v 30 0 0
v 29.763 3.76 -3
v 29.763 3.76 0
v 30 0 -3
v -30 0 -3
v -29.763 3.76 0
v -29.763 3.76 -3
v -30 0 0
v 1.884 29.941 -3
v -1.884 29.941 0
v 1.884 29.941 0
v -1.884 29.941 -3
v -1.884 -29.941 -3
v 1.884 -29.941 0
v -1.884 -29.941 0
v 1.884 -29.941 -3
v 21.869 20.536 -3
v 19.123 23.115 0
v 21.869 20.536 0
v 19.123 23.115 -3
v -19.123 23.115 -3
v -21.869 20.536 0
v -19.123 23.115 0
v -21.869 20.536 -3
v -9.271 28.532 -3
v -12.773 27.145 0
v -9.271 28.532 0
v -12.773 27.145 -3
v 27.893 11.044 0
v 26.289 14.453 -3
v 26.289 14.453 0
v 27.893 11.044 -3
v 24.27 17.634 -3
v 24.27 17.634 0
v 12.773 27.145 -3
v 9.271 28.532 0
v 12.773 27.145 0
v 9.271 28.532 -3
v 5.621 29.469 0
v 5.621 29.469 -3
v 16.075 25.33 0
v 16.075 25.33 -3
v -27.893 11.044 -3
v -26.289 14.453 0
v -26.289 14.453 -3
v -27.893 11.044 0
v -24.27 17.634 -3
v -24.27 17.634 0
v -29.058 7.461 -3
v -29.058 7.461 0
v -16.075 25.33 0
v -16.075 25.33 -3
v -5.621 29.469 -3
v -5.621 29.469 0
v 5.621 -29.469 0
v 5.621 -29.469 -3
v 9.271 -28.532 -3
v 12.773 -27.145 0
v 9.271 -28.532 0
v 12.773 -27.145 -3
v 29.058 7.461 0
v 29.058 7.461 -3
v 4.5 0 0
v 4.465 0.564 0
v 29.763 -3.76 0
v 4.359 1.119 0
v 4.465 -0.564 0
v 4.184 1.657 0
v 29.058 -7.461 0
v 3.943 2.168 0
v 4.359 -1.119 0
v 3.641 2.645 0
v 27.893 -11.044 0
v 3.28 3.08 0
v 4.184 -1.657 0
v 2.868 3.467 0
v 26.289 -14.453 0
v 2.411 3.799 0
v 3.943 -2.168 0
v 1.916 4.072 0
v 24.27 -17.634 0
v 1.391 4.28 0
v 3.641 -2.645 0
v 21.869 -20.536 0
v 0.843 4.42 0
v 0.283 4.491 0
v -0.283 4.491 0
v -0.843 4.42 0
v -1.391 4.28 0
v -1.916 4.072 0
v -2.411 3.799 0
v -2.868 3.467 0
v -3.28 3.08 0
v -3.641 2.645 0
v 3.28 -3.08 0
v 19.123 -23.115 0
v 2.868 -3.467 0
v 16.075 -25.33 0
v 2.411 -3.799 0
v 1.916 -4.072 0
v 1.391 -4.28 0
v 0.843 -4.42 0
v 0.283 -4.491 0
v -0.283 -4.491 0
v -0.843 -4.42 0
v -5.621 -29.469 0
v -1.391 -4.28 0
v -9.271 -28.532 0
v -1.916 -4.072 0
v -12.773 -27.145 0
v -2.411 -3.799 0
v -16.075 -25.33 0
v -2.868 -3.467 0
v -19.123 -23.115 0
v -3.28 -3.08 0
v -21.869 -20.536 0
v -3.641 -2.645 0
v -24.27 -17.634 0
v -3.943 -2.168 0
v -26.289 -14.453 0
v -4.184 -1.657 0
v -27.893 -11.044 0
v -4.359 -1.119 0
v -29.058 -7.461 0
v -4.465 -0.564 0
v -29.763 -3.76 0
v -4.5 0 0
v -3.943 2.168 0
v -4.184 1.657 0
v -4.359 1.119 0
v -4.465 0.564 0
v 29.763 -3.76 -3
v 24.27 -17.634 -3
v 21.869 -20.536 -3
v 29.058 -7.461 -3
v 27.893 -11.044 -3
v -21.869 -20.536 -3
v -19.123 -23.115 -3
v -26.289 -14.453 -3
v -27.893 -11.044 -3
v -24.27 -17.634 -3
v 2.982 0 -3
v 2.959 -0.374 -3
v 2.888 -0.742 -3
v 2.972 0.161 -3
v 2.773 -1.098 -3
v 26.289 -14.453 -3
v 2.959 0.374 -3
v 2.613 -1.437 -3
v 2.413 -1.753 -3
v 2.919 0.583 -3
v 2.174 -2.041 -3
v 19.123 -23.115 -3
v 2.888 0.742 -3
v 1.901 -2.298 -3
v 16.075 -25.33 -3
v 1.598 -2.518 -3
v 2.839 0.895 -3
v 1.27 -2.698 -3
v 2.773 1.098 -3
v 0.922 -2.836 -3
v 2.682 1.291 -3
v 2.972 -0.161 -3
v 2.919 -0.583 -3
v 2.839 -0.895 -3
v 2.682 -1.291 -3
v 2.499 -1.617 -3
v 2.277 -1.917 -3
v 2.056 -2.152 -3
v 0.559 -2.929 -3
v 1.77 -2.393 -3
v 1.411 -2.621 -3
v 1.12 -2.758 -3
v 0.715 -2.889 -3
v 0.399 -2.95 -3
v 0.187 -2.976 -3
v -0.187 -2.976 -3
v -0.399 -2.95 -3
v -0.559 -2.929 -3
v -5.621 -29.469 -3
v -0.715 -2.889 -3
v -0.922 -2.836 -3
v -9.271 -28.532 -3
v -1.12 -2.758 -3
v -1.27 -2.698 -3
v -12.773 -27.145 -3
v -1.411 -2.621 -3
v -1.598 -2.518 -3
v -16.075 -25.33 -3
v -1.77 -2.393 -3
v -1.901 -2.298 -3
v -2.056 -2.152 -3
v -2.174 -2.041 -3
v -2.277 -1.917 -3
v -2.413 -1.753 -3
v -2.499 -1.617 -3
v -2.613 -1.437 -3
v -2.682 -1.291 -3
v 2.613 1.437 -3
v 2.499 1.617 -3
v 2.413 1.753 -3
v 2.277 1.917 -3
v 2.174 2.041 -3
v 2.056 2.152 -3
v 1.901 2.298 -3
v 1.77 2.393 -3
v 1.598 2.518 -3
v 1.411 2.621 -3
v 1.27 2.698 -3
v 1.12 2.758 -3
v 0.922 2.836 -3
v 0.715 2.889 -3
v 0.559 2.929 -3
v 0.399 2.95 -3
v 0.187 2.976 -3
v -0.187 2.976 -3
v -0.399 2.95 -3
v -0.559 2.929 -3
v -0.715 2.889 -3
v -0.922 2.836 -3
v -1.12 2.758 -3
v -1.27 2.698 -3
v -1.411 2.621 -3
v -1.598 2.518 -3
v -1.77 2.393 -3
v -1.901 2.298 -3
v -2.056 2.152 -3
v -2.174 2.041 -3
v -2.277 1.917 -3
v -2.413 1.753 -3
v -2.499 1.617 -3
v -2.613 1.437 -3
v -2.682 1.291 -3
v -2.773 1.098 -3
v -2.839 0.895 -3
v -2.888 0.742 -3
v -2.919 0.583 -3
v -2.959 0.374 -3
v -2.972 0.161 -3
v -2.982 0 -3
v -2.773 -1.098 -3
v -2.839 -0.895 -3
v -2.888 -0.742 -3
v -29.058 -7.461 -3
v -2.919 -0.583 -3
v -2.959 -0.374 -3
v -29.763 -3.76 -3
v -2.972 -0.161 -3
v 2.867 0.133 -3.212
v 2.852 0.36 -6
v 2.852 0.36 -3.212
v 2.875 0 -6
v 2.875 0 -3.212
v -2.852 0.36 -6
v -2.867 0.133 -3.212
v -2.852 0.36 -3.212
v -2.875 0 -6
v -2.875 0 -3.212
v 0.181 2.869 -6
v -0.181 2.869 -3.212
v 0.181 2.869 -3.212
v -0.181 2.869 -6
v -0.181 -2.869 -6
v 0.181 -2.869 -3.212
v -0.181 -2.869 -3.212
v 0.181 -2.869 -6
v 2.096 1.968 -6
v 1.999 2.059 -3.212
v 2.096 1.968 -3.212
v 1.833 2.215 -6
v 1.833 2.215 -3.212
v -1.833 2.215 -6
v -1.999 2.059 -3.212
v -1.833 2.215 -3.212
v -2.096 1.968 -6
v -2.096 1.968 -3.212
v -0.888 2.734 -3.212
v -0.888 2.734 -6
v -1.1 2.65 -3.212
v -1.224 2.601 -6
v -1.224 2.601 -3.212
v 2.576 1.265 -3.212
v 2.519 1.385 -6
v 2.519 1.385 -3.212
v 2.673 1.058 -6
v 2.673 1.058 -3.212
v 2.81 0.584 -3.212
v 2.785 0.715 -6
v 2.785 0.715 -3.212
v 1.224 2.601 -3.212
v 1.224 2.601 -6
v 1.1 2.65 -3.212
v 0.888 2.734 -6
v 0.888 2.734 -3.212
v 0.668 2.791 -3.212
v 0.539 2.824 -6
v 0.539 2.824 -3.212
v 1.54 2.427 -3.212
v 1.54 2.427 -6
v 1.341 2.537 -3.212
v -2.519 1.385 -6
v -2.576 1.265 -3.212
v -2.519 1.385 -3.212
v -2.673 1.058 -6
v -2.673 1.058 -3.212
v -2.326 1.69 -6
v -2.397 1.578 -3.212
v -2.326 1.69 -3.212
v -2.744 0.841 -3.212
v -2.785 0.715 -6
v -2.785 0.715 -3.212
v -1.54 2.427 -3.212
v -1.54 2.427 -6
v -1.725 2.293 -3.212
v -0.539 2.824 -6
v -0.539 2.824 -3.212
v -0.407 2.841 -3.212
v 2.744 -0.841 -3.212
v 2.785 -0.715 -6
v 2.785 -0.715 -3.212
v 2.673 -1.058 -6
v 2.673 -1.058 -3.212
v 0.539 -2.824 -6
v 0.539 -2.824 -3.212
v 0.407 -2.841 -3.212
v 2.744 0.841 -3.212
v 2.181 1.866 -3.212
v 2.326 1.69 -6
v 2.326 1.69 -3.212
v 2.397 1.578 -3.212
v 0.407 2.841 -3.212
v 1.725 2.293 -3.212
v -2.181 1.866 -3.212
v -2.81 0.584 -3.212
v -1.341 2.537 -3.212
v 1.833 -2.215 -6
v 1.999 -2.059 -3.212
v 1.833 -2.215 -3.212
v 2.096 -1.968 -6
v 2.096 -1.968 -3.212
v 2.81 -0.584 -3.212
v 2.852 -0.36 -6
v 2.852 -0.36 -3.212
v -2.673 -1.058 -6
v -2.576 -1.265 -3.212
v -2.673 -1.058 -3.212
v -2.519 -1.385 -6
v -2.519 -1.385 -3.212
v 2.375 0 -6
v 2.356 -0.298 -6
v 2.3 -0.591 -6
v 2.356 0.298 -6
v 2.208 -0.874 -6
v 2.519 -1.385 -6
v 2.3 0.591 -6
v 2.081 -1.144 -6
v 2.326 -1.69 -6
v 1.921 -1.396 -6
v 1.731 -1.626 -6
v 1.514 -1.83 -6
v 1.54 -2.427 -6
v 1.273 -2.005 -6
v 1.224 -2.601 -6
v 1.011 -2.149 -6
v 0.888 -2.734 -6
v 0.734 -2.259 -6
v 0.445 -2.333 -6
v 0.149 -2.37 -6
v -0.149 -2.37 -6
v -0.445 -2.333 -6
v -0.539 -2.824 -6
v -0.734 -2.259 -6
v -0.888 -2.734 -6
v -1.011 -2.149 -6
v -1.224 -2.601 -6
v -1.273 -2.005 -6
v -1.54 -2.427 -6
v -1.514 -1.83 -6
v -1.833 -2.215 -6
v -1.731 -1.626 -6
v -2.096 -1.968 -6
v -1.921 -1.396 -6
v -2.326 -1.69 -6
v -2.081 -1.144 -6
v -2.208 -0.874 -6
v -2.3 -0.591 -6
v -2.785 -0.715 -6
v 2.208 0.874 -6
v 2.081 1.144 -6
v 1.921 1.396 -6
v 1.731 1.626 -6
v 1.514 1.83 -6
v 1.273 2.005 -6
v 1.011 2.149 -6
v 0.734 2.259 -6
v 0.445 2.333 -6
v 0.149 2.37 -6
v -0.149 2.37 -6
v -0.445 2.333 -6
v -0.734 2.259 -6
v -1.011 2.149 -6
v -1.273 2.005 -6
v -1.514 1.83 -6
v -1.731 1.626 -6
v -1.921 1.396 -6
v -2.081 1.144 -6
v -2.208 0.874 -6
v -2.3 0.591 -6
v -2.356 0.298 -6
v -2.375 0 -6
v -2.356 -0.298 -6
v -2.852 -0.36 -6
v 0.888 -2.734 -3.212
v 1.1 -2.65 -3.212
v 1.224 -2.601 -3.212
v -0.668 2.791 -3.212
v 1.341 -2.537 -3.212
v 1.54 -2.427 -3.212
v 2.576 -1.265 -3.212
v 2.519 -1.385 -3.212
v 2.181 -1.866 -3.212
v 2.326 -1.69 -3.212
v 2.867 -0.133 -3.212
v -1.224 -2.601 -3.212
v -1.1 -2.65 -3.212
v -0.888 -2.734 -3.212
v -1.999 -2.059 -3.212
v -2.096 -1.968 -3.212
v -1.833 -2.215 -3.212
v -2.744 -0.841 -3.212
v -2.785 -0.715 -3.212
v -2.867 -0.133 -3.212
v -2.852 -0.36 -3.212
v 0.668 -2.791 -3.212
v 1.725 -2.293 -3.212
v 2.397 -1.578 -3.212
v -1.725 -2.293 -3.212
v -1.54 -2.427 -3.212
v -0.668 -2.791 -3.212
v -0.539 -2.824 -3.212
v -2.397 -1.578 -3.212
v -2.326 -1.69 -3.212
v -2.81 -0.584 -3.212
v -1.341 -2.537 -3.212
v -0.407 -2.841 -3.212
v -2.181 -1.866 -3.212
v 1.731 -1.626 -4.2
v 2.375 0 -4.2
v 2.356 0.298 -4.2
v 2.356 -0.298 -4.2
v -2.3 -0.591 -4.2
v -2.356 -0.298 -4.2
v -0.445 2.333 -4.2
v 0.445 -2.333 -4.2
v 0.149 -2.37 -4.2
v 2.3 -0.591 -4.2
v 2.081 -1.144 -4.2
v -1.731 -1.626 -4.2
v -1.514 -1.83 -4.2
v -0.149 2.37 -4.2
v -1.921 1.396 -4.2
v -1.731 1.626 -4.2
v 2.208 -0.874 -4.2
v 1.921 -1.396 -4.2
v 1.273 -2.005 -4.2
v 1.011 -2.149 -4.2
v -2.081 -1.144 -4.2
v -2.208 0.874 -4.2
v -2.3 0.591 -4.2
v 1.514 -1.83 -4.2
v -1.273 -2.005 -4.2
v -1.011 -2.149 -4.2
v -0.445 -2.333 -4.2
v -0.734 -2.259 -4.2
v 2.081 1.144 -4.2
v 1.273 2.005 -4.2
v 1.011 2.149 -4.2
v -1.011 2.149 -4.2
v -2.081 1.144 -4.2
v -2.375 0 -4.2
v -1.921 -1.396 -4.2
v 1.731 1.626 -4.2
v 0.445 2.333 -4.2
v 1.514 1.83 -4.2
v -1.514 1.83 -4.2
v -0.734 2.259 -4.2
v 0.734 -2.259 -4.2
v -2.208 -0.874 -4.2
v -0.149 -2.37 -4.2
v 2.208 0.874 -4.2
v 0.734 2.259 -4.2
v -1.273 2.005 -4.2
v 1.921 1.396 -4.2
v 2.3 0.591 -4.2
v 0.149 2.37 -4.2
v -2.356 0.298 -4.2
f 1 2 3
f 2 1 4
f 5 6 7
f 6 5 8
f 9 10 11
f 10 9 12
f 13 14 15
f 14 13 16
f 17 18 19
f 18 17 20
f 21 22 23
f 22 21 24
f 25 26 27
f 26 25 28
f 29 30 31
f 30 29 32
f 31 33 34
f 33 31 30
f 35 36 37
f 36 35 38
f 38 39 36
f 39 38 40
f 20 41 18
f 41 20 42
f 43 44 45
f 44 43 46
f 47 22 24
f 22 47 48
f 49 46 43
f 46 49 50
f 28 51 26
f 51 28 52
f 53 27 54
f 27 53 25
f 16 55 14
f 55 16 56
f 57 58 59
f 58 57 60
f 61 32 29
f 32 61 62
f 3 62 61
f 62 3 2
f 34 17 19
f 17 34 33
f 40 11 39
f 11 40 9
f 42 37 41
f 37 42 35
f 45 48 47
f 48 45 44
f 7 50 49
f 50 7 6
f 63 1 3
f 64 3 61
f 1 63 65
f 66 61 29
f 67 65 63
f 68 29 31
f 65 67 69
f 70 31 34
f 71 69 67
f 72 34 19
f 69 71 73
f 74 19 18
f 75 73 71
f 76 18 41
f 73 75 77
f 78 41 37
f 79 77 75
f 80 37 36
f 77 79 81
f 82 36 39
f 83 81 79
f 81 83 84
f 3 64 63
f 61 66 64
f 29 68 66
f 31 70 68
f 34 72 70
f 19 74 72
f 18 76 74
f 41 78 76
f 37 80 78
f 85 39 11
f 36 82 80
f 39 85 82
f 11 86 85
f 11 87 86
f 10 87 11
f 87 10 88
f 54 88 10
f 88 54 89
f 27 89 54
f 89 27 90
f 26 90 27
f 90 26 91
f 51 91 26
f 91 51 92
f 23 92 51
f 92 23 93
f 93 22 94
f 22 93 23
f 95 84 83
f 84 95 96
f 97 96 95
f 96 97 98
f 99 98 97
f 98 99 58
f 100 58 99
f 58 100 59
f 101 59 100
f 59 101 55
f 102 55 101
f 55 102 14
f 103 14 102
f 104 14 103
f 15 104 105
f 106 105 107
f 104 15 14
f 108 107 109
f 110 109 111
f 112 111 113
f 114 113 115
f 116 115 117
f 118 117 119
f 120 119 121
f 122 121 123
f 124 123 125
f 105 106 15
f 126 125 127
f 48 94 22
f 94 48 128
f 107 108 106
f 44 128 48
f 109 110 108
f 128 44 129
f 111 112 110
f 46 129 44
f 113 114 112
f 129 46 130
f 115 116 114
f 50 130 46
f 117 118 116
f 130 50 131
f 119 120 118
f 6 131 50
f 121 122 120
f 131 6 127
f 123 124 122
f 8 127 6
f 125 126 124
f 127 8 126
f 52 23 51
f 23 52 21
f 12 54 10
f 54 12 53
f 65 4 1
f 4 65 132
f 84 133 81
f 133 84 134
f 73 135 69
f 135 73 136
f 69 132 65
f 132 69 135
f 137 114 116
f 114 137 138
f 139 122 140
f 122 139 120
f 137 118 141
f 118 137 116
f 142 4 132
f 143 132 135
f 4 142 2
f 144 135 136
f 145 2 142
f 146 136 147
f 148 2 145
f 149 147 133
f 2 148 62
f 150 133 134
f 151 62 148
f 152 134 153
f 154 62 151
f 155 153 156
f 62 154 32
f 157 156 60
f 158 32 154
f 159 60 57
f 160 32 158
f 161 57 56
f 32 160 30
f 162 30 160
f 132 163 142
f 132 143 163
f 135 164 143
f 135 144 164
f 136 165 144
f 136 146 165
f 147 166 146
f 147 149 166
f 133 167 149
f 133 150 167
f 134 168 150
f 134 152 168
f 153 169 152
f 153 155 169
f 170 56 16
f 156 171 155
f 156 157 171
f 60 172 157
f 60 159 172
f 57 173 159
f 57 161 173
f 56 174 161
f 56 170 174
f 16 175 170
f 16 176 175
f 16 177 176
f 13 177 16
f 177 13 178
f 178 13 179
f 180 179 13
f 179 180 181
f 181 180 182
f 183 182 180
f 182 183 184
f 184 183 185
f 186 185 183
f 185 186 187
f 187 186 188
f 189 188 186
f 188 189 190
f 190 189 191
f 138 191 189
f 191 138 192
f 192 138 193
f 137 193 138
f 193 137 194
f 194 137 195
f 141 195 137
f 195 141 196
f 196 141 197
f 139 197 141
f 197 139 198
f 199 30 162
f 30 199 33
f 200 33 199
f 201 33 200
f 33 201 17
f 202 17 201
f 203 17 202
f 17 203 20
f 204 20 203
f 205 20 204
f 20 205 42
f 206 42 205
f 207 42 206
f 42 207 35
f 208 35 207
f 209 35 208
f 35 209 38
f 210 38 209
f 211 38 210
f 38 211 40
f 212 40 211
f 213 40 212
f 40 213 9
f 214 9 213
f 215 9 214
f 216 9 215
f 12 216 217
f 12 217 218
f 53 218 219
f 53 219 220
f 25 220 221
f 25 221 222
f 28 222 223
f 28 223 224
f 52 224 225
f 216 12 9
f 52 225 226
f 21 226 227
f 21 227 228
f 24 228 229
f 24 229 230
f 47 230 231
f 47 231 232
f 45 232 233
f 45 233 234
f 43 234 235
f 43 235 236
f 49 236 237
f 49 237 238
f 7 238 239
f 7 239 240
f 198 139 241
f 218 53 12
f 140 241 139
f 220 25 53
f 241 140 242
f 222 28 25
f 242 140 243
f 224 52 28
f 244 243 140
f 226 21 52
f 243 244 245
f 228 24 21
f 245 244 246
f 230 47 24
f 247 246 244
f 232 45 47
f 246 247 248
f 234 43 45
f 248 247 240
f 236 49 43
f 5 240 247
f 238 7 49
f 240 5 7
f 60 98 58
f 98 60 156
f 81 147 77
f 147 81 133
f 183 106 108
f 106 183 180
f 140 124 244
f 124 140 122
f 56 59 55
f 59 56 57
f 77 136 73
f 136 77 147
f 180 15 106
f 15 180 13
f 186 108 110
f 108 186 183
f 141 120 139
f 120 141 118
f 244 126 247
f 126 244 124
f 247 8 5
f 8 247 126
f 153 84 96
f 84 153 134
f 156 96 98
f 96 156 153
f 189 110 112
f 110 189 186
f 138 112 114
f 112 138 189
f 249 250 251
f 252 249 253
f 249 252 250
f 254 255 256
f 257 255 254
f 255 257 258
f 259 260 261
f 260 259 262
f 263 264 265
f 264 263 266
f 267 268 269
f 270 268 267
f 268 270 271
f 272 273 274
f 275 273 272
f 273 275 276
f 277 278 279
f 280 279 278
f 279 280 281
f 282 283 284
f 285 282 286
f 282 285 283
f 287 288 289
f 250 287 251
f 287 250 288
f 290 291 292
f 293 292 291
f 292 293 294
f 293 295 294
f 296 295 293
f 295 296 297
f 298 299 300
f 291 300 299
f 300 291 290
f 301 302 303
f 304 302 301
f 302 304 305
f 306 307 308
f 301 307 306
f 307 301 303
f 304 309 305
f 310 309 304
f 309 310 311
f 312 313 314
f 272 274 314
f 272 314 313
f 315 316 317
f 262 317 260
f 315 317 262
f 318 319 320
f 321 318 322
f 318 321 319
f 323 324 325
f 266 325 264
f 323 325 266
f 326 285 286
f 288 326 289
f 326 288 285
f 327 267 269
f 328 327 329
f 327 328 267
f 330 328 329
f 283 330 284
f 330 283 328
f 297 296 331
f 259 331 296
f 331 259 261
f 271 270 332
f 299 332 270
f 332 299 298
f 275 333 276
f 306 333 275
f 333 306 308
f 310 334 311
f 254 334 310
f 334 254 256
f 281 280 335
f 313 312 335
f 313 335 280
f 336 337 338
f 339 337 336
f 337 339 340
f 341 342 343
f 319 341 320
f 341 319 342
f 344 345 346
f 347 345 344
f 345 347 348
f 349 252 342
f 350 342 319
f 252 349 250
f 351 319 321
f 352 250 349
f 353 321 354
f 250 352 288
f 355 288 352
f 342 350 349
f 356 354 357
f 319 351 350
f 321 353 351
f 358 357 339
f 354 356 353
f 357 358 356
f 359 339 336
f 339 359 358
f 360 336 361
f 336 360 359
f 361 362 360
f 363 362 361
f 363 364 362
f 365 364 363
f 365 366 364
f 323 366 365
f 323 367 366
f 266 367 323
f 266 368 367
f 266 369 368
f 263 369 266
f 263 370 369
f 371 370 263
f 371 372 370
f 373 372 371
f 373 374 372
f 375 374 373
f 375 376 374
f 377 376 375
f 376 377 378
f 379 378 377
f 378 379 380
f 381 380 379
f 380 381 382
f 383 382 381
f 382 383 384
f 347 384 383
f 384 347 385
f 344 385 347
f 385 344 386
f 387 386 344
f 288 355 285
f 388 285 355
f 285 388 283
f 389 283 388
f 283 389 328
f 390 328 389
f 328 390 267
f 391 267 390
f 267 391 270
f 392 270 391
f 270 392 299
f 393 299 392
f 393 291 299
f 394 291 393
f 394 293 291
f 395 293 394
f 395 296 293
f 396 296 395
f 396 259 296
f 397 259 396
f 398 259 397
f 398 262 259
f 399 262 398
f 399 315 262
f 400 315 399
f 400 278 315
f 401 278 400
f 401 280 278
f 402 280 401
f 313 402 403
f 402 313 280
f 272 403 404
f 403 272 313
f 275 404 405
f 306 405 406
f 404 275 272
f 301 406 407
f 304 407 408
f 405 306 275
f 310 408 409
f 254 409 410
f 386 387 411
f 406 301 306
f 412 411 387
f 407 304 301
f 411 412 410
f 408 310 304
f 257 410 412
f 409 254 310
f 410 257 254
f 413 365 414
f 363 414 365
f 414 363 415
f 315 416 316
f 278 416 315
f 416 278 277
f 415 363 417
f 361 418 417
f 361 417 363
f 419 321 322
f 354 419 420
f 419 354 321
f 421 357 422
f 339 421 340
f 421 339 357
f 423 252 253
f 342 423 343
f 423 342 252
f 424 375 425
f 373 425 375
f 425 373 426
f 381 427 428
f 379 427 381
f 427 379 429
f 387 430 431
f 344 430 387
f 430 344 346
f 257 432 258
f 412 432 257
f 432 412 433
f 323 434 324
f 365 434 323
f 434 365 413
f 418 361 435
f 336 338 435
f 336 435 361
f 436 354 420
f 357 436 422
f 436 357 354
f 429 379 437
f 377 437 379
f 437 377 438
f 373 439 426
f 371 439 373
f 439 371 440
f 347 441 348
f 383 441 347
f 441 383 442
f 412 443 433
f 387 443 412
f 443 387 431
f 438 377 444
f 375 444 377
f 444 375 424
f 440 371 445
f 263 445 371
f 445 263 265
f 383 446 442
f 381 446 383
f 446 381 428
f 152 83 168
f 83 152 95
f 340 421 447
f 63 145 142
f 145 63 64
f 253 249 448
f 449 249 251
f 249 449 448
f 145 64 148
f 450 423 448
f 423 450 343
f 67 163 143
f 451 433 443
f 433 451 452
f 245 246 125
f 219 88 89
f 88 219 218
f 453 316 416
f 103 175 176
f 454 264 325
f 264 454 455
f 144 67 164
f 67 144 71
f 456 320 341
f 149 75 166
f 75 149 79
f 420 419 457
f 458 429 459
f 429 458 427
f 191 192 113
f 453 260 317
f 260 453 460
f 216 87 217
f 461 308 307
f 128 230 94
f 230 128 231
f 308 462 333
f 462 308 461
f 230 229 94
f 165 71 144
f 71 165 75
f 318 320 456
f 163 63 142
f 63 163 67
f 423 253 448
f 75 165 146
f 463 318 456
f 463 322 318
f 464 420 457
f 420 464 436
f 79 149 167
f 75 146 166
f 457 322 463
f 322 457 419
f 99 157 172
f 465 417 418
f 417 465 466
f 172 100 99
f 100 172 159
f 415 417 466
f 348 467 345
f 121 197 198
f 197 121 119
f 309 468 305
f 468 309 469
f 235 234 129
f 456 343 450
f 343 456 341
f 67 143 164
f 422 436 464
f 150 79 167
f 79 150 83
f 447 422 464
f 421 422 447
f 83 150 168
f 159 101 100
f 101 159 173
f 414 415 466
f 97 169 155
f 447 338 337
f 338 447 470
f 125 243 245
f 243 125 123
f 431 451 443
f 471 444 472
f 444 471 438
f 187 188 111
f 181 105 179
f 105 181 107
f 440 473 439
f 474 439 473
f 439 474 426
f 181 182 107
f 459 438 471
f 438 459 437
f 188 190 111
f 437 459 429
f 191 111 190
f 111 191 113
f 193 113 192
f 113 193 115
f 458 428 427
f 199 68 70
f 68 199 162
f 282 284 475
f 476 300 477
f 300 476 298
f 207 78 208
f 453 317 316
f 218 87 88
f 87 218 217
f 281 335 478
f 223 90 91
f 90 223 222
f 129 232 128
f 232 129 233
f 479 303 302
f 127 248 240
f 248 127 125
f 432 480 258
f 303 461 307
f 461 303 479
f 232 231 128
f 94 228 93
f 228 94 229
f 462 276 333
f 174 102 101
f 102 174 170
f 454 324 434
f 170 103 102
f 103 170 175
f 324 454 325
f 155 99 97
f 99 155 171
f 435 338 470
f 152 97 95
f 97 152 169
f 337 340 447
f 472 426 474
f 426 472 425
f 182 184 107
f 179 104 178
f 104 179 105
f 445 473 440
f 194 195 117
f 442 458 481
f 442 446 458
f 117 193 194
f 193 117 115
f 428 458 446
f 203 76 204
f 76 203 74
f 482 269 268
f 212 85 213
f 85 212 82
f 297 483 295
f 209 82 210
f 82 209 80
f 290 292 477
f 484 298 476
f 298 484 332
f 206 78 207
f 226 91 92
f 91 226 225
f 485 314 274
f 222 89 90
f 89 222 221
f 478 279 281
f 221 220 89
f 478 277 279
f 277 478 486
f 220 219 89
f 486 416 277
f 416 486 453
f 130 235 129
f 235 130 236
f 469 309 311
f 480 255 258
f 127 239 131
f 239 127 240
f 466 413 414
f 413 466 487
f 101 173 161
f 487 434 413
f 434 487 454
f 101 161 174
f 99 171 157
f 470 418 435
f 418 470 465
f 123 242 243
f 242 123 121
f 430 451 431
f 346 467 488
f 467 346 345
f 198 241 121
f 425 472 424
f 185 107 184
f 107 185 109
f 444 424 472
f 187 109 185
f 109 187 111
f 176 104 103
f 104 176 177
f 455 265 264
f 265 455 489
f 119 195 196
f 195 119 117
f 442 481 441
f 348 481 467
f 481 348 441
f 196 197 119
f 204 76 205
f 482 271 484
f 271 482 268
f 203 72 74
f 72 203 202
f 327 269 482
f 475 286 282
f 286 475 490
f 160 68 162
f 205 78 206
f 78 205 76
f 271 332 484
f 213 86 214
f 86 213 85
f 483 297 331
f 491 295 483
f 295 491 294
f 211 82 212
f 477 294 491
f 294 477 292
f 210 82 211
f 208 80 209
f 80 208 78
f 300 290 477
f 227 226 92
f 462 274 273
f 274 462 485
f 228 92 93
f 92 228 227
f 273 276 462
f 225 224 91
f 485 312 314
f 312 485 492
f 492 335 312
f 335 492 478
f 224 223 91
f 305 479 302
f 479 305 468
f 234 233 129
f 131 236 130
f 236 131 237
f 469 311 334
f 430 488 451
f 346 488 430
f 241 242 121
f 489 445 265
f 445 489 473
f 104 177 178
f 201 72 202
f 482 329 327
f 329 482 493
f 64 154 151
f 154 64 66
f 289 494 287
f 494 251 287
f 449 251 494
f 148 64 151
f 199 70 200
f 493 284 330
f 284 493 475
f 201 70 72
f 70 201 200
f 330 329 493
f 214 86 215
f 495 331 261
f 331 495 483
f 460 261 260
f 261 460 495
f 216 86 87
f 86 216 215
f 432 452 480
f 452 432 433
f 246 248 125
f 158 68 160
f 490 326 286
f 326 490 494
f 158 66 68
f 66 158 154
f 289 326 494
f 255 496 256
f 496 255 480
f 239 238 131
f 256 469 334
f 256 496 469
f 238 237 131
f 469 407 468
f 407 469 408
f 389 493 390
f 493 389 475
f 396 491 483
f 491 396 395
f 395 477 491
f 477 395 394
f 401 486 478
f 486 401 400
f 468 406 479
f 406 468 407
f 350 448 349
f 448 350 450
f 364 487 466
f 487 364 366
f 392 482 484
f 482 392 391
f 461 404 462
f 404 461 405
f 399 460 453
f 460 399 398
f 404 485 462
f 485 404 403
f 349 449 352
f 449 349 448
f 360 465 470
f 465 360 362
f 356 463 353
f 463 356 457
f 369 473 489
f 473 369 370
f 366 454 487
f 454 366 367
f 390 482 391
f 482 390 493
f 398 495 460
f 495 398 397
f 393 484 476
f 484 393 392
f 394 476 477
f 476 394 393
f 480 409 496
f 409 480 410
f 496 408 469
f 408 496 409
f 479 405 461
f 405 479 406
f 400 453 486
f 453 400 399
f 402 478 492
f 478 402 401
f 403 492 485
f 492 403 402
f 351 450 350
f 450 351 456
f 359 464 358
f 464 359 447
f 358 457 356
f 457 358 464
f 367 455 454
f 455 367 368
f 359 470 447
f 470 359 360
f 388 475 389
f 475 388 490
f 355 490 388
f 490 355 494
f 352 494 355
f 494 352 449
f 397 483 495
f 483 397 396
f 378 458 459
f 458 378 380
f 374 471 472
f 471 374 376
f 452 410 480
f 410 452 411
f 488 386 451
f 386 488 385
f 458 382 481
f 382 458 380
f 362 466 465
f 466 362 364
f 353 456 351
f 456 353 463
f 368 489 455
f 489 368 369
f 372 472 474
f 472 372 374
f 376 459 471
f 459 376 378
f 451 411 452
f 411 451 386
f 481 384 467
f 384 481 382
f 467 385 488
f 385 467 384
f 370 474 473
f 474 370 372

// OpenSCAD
$fn = 50;

difference() {
	union() {
		translate(v = [0, 0, -3.0]) {
			cylinder(h = 3, r = 30.0);
		}
		#translate(v = [0, 0, -6.0]) {
			cylinder(h = 6, r = 2.875);
		}
	}
	union() {
		translate(v = [0, 0, 0]) {
			rotate(a = [0, 0, 0]) {
				difference() {
					union() {
						translate(v = [0, 0, -6.0]) {
							cylinder(h = 6, r = 2.25);
						}
						translate(v = [0, 0, -4.2]) {
							cylinder(h = 4.2, r1 = 2.375, r2 = 4.5);
						}
						translate(v = [0, 0, -6.0]) {
							cylinder(h = 6, r = 2.375);
						}
						translate(v = [0, 0, -6.0]) {
							cylinder(h = 6, r = 2.25);
						}
					}
					union();
				}
			}
		}
	}
}
